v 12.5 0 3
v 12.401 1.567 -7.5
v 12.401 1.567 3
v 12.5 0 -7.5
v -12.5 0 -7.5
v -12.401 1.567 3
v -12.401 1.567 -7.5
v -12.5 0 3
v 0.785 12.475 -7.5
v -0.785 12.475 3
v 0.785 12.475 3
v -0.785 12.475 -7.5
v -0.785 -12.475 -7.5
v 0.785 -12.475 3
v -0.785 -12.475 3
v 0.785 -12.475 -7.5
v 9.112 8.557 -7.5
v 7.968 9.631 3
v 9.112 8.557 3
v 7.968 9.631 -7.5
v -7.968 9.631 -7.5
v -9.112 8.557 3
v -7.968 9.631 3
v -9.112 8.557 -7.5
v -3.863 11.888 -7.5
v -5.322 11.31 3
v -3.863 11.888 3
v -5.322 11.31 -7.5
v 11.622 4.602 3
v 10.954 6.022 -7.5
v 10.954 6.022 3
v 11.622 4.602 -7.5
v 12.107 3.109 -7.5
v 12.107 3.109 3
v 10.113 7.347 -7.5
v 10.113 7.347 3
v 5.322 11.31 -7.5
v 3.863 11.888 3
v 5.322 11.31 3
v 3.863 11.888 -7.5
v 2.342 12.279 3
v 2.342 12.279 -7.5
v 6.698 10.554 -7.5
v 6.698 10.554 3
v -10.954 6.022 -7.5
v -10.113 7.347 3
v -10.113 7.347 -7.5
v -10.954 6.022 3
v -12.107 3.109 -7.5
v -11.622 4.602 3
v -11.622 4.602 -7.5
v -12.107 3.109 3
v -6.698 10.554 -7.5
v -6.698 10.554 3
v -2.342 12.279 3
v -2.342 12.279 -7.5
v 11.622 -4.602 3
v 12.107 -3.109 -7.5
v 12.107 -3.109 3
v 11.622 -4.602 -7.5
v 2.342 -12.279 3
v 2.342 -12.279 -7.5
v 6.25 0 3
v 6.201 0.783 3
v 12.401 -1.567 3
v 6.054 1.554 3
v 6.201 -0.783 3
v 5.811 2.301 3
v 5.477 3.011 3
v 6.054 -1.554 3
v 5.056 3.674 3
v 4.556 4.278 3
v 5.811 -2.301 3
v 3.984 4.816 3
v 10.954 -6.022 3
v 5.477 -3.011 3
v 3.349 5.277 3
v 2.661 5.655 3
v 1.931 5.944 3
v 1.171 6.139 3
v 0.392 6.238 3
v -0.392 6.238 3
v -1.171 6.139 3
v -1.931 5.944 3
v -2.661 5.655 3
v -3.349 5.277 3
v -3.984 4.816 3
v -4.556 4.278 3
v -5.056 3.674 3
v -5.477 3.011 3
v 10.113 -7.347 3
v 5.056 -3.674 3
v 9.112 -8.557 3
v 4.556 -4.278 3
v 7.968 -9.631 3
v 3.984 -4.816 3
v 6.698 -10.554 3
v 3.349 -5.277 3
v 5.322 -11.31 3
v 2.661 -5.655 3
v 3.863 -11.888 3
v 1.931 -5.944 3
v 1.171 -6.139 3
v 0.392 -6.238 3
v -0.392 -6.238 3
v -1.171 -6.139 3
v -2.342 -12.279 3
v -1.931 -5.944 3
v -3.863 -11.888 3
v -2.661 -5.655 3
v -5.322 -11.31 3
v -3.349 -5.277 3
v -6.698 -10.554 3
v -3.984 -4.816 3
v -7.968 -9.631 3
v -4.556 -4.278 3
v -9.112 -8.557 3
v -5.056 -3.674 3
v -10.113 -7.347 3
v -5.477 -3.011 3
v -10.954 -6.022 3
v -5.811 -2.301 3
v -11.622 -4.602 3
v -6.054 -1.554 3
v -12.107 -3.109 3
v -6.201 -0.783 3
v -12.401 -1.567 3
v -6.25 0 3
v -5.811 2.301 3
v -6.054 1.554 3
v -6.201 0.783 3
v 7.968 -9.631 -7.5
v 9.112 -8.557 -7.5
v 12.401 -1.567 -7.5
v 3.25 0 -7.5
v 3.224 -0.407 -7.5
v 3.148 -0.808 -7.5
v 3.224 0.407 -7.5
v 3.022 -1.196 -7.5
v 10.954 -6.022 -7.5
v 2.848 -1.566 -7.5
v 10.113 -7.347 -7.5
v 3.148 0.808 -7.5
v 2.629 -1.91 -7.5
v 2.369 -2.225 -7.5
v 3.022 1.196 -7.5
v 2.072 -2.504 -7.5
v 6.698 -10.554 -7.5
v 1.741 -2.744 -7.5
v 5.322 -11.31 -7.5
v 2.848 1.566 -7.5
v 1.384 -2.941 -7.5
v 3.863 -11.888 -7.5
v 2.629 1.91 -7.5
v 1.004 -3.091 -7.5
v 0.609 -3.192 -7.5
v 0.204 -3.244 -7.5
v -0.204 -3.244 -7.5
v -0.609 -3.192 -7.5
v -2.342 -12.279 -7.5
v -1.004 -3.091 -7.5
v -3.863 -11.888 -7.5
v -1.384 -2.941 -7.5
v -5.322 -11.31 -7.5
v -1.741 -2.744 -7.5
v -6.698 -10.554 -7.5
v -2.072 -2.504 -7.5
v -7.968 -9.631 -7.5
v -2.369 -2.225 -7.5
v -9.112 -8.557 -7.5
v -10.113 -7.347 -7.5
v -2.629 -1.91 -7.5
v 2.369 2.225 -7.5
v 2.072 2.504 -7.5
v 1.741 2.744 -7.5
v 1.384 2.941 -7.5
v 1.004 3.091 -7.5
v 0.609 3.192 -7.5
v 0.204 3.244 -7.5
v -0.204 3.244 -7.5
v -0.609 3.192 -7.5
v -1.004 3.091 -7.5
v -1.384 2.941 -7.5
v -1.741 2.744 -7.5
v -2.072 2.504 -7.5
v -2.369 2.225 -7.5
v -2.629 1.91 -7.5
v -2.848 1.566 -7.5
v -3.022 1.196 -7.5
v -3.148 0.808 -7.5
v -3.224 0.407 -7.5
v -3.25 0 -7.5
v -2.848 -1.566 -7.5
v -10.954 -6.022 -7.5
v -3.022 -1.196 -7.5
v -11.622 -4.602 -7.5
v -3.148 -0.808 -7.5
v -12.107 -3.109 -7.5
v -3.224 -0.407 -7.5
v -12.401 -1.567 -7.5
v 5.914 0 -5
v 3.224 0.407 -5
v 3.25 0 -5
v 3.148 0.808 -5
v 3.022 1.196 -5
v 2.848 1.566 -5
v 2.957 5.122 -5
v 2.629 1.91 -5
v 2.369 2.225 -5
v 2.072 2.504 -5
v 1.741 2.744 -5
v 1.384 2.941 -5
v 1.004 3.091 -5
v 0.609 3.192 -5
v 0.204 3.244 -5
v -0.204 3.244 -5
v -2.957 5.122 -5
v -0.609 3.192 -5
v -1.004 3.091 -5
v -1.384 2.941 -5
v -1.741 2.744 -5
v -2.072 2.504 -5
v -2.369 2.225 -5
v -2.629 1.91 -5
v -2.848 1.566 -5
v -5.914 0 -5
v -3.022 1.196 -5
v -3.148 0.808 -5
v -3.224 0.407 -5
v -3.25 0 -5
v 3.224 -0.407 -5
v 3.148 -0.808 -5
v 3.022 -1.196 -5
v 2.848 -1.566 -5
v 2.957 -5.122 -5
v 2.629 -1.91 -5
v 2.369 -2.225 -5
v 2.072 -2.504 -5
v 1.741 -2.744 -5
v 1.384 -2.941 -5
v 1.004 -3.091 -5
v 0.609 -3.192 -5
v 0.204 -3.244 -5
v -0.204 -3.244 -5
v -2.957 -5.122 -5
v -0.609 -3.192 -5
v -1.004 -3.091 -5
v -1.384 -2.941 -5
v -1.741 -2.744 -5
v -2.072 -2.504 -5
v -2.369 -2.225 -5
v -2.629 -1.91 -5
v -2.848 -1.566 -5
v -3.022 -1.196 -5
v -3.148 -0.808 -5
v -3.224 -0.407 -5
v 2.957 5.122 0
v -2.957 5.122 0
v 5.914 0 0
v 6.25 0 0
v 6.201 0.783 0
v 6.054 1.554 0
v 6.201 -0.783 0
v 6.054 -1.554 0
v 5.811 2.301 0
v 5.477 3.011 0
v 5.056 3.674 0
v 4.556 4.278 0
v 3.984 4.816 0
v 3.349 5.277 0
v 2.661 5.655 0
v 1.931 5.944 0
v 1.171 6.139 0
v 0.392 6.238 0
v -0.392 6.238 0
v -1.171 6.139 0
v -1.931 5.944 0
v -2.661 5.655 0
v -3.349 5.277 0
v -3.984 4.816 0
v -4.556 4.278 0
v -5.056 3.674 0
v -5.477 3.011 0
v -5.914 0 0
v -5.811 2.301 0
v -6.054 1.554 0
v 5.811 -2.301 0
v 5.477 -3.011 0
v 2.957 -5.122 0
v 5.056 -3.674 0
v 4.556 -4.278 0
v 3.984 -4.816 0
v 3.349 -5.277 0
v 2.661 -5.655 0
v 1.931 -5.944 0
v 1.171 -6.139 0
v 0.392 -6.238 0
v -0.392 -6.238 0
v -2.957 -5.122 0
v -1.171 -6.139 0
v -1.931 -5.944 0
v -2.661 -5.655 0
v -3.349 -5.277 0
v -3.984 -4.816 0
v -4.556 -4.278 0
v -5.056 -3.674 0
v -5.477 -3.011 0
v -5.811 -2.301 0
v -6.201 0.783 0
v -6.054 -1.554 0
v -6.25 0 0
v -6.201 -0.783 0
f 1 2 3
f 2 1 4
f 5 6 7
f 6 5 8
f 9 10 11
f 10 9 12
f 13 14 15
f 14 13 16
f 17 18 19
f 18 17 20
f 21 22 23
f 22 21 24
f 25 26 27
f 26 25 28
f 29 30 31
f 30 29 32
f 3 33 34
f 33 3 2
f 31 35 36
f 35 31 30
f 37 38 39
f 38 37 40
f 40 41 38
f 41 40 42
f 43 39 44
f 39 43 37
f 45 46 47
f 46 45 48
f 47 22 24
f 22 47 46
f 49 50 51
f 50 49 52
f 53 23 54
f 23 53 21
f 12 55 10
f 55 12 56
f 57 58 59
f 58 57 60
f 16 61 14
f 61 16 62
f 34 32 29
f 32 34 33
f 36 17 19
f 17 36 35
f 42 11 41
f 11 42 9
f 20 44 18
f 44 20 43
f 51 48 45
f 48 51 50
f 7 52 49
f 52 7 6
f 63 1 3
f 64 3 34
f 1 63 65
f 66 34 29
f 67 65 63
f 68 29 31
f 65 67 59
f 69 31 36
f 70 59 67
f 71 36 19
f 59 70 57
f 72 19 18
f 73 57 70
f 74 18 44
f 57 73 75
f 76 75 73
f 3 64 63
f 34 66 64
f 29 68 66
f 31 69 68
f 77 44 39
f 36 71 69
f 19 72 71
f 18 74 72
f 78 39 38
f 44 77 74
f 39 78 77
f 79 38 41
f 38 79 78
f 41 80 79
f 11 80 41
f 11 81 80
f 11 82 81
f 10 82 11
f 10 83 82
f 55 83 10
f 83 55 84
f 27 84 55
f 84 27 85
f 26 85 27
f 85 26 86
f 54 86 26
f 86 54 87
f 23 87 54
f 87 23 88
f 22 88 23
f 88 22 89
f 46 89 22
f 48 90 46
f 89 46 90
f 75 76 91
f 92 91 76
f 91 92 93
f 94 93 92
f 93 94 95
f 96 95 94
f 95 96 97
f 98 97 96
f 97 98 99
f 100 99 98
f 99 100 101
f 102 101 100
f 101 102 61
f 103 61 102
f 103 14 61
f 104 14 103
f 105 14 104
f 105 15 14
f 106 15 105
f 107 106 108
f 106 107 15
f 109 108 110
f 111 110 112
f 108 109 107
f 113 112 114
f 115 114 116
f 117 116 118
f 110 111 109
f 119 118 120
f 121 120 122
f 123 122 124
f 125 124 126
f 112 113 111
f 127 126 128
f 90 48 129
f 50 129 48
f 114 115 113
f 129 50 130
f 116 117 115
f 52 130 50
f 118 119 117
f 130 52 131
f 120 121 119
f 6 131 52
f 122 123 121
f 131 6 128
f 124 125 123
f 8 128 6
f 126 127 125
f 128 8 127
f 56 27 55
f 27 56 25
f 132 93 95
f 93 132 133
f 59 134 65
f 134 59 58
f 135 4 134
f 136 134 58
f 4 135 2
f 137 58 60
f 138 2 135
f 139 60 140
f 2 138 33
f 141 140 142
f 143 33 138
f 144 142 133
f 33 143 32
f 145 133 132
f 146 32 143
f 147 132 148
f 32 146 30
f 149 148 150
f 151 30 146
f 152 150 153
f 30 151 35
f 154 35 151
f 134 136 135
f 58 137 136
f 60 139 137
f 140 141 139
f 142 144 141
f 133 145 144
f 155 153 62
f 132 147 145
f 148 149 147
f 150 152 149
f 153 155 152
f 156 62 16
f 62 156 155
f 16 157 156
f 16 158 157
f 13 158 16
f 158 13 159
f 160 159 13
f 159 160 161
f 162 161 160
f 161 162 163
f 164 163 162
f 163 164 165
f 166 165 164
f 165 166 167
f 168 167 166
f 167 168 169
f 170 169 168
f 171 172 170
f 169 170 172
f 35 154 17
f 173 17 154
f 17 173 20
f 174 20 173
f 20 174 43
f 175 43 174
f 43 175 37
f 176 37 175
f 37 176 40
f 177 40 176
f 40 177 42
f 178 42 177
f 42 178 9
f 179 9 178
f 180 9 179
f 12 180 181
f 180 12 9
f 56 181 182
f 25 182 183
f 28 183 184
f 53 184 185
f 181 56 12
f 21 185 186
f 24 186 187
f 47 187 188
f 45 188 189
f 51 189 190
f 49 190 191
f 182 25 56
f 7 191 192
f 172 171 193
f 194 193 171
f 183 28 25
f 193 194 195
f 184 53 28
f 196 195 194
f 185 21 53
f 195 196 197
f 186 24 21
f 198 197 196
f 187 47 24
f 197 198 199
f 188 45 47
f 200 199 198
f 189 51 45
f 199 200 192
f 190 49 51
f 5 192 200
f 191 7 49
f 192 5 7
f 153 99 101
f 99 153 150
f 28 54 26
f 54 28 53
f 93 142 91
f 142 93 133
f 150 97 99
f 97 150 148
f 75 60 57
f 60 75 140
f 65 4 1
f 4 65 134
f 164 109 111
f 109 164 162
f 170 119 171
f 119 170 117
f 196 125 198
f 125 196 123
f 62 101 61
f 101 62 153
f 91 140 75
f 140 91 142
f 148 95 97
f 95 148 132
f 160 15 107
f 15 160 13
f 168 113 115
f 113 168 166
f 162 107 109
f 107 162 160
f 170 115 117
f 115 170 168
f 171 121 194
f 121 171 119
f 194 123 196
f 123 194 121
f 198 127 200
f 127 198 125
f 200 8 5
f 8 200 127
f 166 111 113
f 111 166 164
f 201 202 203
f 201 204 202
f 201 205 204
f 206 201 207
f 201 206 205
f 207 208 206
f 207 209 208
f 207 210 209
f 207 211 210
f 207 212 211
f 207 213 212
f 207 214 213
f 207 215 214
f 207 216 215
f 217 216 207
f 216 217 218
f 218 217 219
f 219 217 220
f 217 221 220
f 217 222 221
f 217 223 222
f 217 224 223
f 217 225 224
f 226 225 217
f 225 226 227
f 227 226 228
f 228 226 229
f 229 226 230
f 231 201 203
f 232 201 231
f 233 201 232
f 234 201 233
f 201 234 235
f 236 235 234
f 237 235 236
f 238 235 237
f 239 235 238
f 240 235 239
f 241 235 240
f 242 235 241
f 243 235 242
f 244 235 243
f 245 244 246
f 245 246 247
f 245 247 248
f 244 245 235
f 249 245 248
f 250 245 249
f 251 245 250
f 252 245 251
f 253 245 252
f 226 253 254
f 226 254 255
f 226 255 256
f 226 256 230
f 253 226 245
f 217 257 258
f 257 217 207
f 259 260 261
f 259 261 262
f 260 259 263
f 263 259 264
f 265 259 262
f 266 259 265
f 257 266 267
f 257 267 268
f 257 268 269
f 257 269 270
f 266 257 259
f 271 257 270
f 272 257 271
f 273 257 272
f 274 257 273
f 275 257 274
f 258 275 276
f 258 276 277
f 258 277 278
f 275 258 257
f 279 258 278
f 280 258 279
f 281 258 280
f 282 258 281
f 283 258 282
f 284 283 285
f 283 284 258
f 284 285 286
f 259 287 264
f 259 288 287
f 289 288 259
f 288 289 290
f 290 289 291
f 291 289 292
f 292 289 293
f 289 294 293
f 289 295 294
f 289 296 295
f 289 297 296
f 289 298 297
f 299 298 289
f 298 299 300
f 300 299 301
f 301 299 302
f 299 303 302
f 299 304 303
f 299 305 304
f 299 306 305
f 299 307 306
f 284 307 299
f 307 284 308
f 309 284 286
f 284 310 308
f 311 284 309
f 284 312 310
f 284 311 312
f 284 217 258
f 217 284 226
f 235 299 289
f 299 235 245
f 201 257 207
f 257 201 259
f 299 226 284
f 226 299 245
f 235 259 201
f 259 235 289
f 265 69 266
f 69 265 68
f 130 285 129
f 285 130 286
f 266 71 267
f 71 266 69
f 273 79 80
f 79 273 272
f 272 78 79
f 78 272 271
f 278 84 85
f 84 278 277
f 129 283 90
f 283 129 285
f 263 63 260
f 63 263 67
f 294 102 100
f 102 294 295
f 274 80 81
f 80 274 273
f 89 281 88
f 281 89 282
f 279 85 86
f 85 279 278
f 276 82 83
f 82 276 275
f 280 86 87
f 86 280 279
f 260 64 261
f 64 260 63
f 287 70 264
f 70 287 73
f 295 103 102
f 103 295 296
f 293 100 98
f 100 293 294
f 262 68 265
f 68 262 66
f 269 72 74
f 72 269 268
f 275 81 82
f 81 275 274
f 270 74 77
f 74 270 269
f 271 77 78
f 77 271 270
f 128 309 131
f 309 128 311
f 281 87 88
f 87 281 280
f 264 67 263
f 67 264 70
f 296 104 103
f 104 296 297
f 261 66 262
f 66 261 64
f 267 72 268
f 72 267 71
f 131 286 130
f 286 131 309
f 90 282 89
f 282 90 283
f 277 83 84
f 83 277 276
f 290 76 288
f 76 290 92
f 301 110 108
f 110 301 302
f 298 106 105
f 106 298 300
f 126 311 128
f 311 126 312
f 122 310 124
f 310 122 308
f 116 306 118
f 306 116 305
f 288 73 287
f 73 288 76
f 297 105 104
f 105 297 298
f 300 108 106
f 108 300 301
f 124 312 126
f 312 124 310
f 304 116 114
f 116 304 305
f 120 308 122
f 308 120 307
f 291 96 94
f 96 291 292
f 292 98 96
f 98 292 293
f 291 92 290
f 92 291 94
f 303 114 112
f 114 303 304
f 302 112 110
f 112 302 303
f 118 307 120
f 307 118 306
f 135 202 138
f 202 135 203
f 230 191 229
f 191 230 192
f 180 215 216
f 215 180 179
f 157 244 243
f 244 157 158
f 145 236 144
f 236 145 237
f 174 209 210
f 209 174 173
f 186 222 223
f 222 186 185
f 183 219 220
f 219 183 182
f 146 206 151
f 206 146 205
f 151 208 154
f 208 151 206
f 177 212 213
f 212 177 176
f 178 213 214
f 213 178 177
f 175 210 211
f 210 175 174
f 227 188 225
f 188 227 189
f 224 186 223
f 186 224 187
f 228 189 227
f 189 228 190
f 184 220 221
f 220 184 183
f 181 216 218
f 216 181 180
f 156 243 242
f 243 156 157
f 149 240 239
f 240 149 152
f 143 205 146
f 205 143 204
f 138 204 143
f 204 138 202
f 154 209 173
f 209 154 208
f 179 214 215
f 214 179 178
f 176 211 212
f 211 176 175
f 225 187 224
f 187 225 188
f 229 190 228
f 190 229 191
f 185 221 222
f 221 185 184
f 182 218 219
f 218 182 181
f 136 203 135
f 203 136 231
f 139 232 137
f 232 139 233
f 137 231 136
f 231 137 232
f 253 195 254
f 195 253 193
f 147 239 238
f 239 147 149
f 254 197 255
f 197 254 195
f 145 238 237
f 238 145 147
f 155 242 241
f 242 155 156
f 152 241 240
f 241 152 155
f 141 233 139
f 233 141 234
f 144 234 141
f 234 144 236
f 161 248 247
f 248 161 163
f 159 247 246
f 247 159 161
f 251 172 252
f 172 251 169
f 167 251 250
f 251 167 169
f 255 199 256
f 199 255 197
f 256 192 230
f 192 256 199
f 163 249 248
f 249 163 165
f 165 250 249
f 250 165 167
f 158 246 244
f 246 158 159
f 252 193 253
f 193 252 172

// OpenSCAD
$fn = 50;

difference() {
	union() {
		translate(v = [0, 0, -7.5]) {
			cylinder(h = 10.5, r = 12.5);
		}
		#translate(v = [0, 0, -9.0]) {
			cylinder(h = 9, r = 2.875);
		}
	}
	union() {
		translate(v = [0, 0, 0]) {
			rotate(a = [0, 0, 0]) {
				difference() {
					union() {
						translate(v = [0, 0, -5]) {
							linear_extrude(height = 5) {
								polygon(points = [[5.914249999999999, 0.0], [2.957125, 5.1218907443321156], [-2.9571249999999982, 5.1218907443321156], [-5.914249999999999, 7.242867331857232e-16], [-2.9571250000000022, -5.121890744332115], [2.9571249999999956, -5.121890744332118]]);
							}
						}
					}
					union();
				}
			}
		}
		#cylinder(h = 3, r = 6.25);
		#translate(v = [0, 0, -100.0]) {
			cylinder(h = 200, r = 3.25);
		}
	}
}
